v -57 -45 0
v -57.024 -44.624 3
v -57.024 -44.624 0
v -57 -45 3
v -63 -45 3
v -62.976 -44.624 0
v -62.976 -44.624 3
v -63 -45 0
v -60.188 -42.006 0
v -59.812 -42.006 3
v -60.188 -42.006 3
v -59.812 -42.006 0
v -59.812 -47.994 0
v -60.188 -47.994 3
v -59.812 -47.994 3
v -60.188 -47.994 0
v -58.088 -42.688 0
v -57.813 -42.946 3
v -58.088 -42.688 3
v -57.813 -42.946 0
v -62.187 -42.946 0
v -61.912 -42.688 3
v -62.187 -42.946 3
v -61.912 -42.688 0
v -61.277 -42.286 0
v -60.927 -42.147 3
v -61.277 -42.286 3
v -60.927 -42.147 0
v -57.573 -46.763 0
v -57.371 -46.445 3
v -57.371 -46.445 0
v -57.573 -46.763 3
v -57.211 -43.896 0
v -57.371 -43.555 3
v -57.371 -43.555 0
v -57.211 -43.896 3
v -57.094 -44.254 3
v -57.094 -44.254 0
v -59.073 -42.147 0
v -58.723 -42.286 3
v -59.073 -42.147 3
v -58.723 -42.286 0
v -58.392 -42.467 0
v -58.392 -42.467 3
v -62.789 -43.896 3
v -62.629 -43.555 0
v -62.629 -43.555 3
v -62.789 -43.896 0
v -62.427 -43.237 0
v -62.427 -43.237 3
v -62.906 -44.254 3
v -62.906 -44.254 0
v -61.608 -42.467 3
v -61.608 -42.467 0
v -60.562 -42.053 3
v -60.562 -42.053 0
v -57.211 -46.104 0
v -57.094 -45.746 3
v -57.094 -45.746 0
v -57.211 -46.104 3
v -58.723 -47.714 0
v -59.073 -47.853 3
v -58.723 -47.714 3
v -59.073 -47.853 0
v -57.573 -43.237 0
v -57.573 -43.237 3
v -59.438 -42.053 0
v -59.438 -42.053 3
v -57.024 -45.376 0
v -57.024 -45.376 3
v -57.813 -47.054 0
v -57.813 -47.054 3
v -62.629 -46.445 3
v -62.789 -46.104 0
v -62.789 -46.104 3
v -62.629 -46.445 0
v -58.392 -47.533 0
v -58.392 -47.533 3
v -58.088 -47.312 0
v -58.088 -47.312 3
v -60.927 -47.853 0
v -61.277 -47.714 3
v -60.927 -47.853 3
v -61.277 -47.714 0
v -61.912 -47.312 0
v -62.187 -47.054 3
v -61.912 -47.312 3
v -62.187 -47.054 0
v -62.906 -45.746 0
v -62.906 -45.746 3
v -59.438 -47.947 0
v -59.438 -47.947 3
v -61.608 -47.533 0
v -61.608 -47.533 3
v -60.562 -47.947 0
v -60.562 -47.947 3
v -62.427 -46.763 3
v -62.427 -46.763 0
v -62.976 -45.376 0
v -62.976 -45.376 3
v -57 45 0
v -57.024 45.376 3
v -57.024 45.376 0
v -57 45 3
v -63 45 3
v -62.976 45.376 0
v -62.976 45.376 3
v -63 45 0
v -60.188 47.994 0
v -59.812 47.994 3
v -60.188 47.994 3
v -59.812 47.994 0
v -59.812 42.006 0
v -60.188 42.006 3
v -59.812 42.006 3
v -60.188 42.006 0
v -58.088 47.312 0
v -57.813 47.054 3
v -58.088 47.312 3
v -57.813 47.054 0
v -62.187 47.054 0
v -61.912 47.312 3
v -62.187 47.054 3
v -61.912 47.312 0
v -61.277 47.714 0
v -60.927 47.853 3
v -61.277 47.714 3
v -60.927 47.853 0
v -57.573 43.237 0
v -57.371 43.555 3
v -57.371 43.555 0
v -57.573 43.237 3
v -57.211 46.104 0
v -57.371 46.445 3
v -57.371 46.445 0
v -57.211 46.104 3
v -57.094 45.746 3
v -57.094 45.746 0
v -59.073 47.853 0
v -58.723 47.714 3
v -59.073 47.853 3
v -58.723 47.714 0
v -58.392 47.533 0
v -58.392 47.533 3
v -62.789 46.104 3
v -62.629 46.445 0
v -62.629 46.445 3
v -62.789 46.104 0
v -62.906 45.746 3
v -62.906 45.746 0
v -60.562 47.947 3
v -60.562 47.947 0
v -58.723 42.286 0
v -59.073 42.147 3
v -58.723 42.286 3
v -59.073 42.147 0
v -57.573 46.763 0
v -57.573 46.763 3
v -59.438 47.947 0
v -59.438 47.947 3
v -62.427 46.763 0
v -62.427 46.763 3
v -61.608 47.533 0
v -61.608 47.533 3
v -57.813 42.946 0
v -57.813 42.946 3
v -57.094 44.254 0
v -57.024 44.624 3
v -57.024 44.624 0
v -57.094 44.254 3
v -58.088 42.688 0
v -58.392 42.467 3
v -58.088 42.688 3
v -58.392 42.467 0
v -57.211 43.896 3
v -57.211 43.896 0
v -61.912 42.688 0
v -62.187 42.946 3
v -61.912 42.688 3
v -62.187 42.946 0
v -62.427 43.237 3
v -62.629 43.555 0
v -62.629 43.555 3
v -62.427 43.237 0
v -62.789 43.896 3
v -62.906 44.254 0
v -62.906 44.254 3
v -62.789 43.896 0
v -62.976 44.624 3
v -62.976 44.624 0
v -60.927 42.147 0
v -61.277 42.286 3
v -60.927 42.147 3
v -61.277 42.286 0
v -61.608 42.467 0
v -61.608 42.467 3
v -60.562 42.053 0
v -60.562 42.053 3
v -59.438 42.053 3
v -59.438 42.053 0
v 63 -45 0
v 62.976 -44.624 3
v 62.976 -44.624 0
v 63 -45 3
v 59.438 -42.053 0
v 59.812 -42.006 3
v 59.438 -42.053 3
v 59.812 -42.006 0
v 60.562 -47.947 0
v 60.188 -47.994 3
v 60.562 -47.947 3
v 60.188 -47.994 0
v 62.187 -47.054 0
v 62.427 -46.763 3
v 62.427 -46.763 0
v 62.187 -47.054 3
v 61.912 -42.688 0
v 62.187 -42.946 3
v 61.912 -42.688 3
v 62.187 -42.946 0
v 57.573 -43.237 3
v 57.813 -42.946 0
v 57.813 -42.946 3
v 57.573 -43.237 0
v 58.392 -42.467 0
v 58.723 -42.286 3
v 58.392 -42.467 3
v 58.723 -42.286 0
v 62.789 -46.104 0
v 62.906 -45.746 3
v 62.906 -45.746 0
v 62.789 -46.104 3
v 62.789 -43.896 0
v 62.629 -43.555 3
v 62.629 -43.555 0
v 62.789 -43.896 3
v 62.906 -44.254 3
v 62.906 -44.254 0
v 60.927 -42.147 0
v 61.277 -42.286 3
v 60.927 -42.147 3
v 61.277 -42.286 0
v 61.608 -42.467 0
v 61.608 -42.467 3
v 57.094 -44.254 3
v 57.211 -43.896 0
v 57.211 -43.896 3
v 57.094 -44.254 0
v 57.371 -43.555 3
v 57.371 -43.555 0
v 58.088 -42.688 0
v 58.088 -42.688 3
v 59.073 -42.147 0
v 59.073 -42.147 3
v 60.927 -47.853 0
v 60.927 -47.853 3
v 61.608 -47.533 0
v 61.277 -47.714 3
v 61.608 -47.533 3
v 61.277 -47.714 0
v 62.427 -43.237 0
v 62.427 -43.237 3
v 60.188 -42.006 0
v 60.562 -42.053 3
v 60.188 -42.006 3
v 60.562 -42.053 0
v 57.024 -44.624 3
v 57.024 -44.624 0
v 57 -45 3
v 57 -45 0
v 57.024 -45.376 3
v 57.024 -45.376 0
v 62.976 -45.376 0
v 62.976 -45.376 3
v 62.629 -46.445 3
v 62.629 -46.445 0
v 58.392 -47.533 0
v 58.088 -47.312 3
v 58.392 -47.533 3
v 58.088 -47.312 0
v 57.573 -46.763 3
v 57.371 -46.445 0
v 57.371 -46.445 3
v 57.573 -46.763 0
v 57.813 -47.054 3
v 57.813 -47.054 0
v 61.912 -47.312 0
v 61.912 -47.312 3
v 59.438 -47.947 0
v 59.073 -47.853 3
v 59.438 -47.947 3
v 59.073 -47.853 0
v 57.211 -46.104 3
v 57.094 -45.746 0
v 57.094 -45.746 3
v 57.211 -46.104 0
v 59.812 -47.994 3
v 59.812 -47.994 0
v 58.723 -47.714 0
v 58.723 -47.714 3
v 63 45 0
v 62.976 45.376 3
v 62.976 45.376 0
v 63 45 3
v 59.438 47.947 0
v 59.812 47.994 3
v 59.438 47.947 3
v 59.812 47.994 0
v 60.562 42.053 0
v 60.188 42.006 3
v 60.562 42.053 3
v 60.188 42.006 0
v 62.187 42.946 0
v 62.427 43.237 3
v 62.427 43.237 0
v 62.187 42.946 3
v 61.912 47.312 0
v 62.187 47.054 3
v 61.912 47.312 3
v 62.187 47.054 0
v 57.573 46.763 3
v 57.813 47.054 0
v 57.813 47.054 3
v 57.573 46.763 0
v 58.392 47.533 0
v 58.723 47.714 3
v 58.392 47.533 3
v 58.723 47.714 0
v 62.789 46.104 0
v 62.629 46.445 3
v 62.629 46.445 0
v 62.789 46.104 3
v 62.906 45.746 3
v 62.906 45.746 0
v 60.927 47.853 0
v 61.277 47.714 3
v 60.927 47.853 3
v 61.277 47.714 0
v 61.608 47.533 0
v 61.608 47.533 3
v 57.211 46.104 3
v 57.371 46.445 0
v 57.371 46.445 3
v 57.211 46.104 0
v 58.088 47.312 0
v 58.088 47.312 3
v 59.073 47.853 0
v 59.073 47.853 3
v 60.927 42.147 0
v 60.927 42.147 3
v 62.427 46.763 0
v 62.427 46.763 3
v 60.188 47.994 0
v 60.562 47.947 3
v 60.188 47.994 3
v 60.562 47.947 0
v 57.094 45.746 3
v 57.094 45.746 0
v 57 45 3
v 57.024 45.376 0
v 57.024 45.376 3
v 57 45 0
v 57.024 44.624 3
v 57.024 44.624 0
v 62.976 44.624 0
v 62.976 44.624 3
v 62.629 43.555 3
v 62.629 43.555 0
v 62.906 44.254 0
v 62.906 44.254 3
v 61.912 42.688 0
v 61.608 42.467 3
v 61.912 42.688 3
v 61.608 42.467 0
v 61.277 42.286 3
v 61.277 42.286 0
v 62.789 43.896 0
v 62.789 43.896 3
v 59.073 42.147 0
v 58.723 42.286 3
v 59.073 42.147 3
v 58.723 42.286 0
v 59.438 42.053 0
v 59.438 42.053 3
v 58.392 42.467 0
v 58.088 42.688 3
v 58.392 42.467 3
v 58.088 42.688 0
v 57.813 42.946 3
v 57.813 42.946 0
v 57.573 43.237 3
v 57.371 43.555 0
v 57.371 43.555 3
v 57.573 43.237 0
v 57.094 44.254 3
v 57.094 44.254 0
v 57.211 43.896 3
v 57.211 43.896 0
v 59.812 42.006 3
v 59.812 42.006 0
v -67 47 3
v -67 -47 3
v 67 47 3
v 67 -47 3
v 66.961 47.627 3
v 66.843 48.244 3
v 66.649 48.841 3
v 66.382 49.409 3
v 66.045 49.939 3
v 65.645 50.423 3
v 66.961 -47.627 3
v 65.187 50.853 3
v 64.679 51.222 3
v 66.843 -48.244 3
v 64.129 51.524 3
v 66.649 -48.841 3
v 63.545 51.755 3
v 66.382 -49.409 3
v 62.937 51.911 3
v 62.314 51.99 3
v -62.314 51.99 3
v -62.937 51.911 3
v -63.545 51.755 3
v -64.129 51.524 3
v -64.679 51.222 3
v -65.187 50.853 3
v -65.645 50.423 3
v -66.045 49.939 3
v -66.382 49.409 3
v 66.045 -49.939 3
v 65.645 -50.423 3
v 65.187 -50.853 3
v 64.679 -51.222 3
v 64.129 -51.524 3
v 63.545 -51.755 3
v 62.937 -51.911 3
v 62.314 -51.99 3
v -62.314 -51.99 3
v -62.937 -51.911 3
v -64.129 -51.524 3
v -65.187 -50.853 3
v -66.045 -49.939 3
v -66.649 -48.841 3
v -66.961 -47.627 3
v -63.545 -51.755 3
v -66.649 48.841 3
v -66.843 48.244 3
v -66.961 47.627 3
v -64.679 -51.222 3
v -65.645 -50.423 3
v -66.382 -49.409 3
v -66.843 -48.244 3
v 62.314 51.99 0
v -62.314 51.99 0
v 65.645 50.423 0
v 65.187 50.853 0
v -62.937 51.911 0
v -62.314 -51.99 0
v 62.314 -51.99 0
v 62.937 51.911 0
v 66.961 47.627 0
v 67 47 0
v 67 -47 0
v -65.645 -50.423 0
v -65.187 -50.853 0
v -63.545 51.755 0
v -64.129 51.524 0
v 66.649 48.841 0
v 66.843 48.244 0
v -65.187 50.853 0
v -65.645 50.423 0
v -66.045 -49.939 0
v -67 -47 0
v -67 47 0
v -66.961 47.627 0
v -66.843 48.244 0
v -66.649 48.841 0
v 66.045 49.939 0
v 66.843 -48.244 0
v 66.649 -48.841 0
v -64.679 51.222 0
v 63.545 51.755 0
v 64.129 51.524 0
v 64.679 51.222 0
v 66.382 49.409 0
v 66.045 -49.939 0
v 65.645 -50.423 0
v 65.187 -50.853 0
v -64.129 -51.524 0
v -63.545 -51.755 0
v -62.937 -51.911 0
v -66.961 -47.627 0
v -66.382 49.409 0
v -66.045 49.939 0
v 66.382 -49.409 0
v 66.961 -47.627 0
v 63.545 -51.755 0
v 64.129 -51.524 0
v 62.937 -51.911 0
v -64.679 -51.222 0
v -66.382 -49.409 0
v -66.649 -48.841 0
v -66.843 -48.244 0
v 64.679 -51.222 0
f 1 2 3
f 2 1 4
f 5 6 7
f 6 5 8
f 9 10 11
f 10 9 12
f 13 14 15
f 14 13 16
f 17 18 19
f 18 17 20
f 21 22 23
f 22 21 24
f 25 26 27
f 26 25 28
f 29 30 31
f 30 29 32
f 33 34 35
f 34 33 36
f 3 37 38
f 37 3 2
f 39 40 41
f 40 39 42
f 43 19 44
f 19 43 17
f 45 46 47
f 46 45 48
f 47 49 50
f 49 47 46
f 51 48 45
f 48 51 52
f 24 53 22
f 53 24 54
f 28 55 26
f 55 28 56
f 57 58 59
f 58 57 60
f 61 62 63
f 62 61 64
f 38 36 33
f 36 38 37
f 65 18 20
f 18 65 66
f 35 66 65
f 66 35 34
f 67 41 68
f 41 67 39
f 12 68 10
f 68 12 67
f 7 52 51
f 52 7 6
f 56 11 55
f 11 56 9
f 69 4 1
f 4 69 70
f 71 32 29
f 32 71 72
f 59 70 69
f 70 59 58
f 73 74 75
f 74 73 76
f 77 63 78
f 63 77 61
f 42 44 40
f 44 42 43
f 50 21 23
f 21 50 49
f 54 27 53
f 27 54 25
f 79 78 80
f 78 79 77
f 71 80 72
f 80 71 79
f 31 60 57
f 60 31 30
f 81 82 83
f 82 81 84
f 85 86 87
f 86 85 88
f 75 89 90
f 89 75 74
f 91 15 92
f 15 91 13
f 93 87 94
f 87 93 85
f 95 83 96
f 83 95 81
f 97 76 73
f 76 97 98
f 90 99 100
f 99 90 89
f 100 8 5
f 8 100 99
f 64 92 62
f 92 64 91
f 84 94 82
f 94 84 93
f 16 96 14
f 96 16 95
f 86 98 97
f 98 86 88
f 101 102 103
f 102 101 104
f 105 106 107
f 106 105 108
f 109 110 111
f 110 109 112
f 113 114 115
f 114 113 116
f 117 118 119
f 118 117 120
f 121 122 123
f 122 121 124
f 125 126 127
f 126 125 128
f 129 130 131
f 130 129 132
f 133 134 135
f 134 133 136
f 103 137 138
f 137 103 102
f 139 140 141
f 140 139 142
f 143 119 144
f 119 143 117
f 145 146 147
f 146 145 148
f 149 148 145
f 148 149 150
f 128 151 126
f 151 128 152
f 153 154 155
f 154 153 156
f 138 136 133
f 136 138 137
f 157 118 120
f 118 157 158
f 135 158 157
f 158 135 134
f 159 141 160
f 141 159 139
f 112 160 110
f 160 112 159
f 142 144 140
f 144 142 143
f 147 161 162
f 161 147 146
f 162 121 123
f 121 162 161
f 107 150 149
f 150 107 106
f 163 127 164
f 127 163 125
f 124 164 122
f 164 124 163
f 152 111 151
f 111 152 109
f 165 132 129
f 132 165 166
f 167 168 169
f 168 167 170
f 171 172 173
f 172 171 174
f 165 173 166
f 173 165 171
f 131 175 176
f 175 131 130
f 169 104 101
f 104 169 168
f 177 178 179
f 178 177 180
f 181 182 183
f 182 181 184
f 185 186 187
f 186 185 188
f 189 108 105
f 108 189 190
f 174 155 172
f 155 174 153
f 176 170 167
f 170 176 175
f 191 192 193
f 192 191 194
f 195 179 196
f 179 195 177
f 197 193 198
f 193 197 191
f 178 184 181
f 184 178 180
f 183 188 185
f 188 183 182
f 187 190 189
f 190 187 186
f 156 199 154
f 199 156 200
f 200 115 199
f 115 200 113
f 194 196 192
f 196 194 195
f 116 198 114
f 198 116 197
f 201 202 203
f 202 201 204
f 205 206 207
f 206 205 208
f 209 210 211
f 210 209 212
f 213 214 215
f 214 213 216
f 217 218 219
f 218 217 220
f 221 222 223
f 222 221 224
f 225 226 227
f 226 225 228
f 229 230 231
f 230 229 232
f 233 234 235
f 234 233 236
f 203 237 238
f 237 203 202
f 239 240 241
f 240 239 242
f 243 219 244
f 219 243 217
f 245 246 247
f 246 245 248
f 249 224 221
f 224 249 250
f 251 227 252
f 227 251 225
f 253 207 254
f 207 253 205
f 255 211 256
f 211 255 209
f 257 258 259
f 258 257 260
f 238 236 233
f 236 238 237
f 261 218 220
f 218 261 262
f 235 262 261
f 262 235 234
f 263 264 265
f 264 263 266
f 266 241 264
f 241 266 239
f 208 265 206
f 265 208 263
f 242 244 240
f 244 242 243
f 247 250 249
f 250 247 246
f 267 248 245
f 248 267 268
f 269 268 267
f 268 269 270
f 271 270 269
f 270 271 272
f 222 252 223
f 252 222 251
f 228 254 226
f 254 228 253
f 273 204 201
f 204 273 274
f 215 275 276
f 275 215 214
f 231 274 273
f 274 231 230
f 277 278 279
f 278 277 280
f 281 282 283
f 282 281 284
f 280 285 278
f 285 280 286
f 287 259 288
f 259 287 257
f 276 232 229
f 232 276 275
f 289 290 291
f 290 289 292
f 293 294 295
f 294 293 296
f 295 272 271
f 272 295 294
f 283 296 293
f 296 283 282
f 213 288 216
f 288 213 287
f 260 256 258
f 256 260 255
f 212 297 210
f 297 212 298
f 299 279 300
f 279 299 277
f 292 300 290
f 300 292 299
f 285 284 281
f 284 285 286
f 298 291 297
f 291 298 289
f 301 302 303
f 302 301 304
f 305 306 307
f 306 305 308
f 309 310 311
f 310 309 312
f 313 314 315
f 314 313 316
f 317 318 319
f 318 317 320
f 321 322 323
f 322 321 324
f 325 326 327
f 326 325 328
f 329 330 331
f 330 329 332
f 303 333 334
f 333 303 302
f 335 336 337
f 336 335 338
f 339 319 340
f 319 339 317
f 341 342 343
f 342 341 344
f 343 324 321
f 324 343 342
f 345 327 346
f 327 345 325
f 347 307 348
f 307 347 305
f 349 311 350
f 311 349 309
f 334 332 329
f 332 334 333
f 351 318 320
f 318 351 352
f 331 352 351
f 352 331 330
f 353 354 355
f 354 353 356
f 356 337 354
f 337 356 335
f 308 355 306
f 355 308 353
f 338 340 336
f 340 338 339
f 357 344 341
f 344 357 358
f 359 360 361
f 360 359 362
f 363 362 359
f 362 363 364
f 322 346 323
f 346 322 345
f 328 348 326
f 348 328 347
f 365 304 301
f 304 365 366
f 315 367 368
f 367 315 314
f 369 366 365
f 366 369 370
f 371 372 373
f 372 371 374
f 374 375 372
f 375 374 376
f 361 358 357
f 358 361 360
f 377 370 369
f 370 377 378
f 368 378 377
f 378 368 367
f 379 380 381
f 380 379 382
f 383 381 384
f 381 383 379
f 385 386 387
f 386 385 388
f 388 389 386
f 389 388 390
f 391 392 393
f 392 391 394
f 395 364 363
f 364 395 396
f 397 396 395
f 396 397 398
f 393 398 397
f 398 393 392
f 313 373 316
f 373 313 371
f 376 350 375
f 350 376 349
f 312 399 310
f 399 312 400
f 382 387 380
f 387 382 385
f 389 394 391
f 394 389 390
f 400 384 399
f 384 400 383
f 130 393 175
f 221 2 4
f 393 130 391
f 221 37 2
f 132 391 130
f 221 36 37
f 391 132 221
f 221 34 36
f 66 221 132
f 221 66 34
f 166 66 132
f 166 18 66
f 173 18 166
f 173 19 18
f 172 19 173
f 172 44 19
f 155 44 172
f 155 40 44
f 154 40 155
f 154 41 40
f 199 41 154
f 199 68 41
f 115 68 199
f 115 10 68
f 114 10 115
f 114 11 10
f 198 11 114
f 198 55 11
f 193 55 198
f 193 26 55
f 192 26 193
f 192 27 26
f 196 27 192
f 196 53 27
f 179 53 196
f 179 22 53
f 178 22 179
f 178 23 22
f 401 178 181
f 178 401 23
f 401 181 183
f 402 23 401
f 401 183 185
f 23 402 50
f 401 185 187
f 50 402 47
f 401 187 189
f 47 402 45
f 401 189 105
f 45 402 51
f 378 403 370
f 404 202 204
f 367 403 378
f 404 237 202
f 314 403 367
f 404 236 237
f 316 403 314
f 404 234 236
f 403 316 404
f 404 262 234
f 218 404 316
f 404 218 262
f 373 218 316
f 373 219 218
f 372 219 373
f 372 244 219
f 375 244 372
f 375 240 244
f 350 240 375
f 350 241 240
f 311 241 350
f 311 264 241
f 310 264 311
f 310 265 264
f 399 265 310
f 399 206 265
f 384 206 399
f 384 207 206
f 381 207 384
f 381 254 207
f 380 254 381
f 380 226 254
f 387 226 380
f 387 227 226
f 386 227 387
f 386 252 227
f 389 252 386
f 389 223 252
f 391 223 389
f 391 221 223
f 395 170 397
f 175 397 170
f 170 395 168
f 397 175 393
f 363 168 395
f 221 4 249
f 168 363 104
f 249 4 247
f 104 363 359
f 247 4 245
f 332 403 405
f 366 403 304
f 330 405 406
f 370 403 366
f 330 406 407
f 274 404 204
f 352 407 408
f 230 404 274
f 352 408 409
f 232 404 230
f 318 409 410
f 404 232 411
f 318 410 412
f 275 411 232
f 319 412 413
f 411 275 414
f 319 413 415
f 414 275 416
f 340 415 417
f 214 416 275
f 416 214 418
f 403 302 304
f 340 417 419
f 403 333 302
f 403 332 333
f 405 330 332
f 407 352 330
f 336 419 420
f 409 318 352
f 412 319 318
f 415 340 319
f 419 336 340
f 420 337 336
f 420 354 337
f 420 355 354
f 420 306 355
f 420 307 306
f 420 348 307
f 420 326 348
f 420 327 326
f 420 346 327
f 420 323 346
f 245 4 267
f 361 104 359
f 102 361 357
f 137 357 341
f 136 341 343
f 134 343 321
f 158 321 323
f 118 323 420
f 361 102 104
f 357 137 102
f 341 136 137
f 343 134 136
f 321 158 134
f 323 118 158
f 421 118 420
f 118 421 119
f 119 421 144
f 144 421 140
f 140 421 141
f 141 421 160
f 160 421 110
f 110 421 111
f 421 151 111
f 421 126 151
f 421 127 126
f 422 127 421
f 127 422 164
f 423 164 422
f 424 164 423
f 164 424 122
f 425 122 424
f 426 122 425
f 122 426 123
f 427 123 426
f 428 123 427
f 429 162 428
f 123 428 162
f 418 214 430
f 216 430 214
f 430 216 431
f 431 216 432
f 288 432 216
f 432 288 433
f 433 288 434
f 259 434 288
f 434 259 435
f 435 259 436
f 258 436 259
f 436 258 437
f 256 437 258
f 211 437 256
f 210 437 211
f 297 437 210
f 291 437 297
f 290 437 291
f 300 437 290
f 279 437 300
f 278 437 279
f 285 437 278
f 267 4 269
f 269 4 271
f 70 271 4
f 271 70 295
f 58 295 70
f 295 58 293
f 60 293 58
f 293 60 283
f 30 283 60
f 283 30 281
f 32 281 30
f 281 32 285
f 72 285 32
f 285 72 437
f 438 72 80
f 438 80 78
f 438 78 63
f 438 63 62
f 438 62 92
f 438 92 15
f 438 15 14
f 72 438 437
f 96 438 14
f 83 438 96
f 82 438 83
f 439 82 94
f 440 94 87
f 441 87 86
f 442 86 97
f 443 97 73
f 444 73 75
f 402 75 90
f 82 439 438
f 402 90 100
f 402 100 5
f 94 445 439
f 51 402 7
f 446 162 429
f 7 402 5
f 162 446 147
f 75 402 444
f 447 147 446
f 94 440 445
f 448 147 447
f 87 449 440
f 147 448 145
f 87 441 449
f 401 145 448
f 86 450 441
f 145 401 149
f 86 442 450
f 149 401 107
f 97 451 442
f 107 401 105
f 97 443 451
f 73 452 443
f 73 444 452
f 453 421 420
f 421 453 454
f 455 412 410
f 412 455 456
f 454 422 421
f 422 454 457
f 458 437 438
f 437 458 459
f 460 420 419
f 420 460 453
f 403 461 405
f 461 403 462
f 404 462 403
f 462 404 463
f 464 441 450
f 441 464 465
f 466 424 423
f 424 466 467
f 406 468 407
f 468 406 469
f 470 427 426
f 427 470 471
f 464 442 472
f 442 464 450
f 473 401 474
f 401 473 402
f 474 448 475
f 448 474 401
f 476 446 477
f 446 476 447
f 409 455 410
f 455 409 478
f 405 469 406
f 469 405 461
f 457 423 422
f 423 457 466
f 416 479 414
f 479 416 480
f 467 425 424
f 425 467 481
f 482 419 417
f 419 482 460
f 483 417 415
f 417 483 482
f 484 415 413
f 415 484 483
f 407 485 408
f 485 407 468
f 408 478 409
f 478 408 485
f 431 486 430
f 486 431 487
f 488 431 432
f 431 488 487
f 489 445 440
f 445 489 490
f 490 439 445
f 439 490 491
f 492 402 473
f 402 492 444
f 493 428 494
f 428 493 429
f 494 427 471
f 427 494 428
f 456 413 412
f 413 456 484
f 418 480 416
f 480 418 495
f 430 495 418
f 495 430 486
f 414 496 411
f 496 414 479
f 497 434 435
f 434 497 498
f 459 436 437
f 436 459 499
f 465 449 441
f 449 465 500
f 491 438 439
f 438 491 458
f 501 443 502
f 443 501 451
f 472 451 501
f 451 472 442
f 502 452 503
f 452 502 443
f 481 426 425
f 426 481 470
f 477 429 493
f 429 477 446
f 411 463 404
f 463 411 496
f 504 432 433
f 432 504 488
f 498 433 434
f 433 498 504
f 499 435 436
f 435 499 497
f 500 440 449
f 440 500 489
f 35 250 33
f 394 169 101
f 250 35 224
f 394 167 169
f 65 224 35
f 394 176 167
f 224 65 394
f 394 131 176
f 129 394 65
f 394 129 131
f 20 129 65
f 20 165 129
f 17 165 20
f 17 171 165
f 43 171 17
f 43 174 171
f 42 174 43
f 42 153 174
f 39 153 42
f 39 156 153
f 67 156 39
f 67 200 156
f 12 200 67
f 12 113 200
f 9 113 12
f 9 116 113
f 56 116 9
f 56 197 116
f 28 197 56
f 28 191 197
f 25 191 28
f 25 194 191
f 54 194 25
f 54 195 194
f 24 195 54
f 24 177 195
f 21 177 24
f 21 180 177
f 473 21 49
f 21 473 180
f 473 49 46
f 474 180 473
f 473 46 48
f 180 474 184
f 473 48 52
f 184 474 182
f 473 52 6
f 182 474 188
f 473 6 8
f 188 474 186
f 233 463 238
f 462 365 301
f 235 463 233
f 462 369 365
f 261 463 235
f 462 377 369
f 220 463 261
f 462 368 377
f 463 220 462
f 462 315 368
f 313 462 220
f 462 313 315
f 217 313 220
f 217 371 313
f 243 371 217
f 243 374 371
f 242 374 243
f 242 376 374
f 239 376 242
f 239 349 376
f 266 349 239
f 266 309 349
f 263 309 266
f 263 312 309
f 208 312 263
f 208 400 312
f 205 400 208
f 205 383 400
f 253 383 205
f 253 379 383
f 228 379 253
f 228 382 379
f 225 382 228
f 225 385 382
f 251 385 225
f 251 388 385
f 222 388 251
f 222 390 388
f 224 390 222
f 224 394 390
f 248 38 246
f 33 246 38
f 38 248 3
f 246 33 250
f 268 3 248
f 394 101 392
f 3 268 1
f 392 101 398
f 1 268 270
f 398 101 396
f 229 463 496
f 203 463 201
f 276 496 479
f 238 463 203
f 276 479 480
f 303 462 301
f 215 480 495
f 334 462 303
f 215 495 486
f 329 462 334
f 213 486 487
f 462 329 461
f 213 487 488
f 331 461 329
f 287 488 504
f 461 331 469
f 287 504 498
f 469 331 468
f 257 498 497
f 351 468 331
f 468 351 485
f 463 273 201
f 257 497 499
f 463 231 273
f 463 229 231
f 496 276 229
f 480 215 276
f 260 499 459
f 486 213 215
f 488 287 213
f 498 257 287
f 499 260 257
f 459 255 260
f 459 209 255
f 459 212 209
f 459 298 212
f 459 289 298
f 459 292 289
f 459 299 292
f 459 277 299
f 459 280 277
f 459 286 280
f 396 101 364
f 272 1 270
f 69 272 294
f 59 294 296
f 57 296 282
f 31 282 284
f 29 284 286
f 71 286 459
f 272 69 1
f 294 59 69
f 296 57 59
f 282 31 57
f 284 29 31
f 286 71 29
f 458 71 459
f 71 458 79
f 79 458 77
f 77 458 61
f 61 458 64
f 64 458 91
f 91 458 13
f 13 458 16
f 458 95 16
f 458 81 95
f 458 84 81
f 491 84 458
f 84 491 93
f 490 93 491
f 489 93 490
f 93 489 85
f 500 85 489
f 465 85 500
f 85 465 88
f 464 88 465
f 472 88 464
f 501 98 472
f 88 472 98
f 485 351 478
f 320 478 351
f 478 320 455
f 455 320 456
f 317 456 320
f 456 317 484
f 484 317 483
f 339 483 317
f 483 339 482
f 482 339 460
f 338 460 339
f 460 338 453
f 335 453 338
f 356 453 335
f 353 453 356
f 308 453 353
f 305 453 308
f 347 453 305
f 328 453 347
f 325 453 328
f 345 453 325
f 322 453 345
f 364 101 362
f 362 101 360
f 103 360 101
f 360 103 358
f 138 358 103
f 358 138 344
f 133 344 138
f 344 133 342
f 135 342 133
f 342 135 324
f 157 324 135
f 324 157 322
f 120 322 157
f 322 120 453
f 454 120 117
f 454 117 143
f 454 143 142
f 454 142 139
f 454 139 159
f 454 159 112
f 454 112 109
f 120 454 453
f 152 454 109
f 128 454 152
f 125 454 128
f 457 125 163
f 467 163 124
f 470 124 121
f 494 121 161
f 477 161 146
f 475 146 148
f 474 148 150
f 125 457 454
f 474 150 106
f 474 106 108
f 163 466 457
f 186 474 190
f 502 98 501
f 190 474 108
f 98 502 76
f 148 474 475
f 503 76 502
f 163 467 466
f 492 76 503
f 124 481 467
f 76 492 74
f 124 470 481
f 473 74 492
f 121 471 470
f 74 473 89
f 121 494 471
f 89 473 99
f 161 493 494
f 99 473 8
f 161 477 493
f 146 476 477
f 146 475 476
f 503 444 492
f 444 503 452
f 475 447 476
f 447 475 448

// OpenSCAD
$fn = 50;


difference() {
	union() {
		hull() {
			translate(v = [-62.0000000000, 47.0000000000, 0]) {
				cylinder(h = 3, r = 5);
			}
			translate(v = [62.0000000000, 47.0000000000, 0]) {
				cylinder(h = 3, r = 5);
			}
			translate(v = [-62.0000000000, -47.0000000000, 0]) {
				cylinder(h = 3, r = 5);
			}
			translate(v = [62.0000000000, -47.0000000000, 0]) {
				cylinder(h = 3, r = 5);
			}
		}
	}
	union() {
		translate(v = [-60.0000000000, -45.0000000000, -100.0000000000]) {
			cylinder(h = 200, r = 3.0000000000);
		}
		translate(v = [-60.0000000000, 45.0000000000, -100.0000000000]) {
			cylinder(h = 200, r = 3.0000000000);
		}
		translate(v = [60.0000000000, -45.0000000000, -100.0000000000]) {
			cylinder(h = 200, r = 3.0000000000);
		}
		translate(v = [60.0000000000, 45.0000000000, -100.0000000000]) {
			cylinder(h = 200, r = 3.0000000000);
		}
	}
}
